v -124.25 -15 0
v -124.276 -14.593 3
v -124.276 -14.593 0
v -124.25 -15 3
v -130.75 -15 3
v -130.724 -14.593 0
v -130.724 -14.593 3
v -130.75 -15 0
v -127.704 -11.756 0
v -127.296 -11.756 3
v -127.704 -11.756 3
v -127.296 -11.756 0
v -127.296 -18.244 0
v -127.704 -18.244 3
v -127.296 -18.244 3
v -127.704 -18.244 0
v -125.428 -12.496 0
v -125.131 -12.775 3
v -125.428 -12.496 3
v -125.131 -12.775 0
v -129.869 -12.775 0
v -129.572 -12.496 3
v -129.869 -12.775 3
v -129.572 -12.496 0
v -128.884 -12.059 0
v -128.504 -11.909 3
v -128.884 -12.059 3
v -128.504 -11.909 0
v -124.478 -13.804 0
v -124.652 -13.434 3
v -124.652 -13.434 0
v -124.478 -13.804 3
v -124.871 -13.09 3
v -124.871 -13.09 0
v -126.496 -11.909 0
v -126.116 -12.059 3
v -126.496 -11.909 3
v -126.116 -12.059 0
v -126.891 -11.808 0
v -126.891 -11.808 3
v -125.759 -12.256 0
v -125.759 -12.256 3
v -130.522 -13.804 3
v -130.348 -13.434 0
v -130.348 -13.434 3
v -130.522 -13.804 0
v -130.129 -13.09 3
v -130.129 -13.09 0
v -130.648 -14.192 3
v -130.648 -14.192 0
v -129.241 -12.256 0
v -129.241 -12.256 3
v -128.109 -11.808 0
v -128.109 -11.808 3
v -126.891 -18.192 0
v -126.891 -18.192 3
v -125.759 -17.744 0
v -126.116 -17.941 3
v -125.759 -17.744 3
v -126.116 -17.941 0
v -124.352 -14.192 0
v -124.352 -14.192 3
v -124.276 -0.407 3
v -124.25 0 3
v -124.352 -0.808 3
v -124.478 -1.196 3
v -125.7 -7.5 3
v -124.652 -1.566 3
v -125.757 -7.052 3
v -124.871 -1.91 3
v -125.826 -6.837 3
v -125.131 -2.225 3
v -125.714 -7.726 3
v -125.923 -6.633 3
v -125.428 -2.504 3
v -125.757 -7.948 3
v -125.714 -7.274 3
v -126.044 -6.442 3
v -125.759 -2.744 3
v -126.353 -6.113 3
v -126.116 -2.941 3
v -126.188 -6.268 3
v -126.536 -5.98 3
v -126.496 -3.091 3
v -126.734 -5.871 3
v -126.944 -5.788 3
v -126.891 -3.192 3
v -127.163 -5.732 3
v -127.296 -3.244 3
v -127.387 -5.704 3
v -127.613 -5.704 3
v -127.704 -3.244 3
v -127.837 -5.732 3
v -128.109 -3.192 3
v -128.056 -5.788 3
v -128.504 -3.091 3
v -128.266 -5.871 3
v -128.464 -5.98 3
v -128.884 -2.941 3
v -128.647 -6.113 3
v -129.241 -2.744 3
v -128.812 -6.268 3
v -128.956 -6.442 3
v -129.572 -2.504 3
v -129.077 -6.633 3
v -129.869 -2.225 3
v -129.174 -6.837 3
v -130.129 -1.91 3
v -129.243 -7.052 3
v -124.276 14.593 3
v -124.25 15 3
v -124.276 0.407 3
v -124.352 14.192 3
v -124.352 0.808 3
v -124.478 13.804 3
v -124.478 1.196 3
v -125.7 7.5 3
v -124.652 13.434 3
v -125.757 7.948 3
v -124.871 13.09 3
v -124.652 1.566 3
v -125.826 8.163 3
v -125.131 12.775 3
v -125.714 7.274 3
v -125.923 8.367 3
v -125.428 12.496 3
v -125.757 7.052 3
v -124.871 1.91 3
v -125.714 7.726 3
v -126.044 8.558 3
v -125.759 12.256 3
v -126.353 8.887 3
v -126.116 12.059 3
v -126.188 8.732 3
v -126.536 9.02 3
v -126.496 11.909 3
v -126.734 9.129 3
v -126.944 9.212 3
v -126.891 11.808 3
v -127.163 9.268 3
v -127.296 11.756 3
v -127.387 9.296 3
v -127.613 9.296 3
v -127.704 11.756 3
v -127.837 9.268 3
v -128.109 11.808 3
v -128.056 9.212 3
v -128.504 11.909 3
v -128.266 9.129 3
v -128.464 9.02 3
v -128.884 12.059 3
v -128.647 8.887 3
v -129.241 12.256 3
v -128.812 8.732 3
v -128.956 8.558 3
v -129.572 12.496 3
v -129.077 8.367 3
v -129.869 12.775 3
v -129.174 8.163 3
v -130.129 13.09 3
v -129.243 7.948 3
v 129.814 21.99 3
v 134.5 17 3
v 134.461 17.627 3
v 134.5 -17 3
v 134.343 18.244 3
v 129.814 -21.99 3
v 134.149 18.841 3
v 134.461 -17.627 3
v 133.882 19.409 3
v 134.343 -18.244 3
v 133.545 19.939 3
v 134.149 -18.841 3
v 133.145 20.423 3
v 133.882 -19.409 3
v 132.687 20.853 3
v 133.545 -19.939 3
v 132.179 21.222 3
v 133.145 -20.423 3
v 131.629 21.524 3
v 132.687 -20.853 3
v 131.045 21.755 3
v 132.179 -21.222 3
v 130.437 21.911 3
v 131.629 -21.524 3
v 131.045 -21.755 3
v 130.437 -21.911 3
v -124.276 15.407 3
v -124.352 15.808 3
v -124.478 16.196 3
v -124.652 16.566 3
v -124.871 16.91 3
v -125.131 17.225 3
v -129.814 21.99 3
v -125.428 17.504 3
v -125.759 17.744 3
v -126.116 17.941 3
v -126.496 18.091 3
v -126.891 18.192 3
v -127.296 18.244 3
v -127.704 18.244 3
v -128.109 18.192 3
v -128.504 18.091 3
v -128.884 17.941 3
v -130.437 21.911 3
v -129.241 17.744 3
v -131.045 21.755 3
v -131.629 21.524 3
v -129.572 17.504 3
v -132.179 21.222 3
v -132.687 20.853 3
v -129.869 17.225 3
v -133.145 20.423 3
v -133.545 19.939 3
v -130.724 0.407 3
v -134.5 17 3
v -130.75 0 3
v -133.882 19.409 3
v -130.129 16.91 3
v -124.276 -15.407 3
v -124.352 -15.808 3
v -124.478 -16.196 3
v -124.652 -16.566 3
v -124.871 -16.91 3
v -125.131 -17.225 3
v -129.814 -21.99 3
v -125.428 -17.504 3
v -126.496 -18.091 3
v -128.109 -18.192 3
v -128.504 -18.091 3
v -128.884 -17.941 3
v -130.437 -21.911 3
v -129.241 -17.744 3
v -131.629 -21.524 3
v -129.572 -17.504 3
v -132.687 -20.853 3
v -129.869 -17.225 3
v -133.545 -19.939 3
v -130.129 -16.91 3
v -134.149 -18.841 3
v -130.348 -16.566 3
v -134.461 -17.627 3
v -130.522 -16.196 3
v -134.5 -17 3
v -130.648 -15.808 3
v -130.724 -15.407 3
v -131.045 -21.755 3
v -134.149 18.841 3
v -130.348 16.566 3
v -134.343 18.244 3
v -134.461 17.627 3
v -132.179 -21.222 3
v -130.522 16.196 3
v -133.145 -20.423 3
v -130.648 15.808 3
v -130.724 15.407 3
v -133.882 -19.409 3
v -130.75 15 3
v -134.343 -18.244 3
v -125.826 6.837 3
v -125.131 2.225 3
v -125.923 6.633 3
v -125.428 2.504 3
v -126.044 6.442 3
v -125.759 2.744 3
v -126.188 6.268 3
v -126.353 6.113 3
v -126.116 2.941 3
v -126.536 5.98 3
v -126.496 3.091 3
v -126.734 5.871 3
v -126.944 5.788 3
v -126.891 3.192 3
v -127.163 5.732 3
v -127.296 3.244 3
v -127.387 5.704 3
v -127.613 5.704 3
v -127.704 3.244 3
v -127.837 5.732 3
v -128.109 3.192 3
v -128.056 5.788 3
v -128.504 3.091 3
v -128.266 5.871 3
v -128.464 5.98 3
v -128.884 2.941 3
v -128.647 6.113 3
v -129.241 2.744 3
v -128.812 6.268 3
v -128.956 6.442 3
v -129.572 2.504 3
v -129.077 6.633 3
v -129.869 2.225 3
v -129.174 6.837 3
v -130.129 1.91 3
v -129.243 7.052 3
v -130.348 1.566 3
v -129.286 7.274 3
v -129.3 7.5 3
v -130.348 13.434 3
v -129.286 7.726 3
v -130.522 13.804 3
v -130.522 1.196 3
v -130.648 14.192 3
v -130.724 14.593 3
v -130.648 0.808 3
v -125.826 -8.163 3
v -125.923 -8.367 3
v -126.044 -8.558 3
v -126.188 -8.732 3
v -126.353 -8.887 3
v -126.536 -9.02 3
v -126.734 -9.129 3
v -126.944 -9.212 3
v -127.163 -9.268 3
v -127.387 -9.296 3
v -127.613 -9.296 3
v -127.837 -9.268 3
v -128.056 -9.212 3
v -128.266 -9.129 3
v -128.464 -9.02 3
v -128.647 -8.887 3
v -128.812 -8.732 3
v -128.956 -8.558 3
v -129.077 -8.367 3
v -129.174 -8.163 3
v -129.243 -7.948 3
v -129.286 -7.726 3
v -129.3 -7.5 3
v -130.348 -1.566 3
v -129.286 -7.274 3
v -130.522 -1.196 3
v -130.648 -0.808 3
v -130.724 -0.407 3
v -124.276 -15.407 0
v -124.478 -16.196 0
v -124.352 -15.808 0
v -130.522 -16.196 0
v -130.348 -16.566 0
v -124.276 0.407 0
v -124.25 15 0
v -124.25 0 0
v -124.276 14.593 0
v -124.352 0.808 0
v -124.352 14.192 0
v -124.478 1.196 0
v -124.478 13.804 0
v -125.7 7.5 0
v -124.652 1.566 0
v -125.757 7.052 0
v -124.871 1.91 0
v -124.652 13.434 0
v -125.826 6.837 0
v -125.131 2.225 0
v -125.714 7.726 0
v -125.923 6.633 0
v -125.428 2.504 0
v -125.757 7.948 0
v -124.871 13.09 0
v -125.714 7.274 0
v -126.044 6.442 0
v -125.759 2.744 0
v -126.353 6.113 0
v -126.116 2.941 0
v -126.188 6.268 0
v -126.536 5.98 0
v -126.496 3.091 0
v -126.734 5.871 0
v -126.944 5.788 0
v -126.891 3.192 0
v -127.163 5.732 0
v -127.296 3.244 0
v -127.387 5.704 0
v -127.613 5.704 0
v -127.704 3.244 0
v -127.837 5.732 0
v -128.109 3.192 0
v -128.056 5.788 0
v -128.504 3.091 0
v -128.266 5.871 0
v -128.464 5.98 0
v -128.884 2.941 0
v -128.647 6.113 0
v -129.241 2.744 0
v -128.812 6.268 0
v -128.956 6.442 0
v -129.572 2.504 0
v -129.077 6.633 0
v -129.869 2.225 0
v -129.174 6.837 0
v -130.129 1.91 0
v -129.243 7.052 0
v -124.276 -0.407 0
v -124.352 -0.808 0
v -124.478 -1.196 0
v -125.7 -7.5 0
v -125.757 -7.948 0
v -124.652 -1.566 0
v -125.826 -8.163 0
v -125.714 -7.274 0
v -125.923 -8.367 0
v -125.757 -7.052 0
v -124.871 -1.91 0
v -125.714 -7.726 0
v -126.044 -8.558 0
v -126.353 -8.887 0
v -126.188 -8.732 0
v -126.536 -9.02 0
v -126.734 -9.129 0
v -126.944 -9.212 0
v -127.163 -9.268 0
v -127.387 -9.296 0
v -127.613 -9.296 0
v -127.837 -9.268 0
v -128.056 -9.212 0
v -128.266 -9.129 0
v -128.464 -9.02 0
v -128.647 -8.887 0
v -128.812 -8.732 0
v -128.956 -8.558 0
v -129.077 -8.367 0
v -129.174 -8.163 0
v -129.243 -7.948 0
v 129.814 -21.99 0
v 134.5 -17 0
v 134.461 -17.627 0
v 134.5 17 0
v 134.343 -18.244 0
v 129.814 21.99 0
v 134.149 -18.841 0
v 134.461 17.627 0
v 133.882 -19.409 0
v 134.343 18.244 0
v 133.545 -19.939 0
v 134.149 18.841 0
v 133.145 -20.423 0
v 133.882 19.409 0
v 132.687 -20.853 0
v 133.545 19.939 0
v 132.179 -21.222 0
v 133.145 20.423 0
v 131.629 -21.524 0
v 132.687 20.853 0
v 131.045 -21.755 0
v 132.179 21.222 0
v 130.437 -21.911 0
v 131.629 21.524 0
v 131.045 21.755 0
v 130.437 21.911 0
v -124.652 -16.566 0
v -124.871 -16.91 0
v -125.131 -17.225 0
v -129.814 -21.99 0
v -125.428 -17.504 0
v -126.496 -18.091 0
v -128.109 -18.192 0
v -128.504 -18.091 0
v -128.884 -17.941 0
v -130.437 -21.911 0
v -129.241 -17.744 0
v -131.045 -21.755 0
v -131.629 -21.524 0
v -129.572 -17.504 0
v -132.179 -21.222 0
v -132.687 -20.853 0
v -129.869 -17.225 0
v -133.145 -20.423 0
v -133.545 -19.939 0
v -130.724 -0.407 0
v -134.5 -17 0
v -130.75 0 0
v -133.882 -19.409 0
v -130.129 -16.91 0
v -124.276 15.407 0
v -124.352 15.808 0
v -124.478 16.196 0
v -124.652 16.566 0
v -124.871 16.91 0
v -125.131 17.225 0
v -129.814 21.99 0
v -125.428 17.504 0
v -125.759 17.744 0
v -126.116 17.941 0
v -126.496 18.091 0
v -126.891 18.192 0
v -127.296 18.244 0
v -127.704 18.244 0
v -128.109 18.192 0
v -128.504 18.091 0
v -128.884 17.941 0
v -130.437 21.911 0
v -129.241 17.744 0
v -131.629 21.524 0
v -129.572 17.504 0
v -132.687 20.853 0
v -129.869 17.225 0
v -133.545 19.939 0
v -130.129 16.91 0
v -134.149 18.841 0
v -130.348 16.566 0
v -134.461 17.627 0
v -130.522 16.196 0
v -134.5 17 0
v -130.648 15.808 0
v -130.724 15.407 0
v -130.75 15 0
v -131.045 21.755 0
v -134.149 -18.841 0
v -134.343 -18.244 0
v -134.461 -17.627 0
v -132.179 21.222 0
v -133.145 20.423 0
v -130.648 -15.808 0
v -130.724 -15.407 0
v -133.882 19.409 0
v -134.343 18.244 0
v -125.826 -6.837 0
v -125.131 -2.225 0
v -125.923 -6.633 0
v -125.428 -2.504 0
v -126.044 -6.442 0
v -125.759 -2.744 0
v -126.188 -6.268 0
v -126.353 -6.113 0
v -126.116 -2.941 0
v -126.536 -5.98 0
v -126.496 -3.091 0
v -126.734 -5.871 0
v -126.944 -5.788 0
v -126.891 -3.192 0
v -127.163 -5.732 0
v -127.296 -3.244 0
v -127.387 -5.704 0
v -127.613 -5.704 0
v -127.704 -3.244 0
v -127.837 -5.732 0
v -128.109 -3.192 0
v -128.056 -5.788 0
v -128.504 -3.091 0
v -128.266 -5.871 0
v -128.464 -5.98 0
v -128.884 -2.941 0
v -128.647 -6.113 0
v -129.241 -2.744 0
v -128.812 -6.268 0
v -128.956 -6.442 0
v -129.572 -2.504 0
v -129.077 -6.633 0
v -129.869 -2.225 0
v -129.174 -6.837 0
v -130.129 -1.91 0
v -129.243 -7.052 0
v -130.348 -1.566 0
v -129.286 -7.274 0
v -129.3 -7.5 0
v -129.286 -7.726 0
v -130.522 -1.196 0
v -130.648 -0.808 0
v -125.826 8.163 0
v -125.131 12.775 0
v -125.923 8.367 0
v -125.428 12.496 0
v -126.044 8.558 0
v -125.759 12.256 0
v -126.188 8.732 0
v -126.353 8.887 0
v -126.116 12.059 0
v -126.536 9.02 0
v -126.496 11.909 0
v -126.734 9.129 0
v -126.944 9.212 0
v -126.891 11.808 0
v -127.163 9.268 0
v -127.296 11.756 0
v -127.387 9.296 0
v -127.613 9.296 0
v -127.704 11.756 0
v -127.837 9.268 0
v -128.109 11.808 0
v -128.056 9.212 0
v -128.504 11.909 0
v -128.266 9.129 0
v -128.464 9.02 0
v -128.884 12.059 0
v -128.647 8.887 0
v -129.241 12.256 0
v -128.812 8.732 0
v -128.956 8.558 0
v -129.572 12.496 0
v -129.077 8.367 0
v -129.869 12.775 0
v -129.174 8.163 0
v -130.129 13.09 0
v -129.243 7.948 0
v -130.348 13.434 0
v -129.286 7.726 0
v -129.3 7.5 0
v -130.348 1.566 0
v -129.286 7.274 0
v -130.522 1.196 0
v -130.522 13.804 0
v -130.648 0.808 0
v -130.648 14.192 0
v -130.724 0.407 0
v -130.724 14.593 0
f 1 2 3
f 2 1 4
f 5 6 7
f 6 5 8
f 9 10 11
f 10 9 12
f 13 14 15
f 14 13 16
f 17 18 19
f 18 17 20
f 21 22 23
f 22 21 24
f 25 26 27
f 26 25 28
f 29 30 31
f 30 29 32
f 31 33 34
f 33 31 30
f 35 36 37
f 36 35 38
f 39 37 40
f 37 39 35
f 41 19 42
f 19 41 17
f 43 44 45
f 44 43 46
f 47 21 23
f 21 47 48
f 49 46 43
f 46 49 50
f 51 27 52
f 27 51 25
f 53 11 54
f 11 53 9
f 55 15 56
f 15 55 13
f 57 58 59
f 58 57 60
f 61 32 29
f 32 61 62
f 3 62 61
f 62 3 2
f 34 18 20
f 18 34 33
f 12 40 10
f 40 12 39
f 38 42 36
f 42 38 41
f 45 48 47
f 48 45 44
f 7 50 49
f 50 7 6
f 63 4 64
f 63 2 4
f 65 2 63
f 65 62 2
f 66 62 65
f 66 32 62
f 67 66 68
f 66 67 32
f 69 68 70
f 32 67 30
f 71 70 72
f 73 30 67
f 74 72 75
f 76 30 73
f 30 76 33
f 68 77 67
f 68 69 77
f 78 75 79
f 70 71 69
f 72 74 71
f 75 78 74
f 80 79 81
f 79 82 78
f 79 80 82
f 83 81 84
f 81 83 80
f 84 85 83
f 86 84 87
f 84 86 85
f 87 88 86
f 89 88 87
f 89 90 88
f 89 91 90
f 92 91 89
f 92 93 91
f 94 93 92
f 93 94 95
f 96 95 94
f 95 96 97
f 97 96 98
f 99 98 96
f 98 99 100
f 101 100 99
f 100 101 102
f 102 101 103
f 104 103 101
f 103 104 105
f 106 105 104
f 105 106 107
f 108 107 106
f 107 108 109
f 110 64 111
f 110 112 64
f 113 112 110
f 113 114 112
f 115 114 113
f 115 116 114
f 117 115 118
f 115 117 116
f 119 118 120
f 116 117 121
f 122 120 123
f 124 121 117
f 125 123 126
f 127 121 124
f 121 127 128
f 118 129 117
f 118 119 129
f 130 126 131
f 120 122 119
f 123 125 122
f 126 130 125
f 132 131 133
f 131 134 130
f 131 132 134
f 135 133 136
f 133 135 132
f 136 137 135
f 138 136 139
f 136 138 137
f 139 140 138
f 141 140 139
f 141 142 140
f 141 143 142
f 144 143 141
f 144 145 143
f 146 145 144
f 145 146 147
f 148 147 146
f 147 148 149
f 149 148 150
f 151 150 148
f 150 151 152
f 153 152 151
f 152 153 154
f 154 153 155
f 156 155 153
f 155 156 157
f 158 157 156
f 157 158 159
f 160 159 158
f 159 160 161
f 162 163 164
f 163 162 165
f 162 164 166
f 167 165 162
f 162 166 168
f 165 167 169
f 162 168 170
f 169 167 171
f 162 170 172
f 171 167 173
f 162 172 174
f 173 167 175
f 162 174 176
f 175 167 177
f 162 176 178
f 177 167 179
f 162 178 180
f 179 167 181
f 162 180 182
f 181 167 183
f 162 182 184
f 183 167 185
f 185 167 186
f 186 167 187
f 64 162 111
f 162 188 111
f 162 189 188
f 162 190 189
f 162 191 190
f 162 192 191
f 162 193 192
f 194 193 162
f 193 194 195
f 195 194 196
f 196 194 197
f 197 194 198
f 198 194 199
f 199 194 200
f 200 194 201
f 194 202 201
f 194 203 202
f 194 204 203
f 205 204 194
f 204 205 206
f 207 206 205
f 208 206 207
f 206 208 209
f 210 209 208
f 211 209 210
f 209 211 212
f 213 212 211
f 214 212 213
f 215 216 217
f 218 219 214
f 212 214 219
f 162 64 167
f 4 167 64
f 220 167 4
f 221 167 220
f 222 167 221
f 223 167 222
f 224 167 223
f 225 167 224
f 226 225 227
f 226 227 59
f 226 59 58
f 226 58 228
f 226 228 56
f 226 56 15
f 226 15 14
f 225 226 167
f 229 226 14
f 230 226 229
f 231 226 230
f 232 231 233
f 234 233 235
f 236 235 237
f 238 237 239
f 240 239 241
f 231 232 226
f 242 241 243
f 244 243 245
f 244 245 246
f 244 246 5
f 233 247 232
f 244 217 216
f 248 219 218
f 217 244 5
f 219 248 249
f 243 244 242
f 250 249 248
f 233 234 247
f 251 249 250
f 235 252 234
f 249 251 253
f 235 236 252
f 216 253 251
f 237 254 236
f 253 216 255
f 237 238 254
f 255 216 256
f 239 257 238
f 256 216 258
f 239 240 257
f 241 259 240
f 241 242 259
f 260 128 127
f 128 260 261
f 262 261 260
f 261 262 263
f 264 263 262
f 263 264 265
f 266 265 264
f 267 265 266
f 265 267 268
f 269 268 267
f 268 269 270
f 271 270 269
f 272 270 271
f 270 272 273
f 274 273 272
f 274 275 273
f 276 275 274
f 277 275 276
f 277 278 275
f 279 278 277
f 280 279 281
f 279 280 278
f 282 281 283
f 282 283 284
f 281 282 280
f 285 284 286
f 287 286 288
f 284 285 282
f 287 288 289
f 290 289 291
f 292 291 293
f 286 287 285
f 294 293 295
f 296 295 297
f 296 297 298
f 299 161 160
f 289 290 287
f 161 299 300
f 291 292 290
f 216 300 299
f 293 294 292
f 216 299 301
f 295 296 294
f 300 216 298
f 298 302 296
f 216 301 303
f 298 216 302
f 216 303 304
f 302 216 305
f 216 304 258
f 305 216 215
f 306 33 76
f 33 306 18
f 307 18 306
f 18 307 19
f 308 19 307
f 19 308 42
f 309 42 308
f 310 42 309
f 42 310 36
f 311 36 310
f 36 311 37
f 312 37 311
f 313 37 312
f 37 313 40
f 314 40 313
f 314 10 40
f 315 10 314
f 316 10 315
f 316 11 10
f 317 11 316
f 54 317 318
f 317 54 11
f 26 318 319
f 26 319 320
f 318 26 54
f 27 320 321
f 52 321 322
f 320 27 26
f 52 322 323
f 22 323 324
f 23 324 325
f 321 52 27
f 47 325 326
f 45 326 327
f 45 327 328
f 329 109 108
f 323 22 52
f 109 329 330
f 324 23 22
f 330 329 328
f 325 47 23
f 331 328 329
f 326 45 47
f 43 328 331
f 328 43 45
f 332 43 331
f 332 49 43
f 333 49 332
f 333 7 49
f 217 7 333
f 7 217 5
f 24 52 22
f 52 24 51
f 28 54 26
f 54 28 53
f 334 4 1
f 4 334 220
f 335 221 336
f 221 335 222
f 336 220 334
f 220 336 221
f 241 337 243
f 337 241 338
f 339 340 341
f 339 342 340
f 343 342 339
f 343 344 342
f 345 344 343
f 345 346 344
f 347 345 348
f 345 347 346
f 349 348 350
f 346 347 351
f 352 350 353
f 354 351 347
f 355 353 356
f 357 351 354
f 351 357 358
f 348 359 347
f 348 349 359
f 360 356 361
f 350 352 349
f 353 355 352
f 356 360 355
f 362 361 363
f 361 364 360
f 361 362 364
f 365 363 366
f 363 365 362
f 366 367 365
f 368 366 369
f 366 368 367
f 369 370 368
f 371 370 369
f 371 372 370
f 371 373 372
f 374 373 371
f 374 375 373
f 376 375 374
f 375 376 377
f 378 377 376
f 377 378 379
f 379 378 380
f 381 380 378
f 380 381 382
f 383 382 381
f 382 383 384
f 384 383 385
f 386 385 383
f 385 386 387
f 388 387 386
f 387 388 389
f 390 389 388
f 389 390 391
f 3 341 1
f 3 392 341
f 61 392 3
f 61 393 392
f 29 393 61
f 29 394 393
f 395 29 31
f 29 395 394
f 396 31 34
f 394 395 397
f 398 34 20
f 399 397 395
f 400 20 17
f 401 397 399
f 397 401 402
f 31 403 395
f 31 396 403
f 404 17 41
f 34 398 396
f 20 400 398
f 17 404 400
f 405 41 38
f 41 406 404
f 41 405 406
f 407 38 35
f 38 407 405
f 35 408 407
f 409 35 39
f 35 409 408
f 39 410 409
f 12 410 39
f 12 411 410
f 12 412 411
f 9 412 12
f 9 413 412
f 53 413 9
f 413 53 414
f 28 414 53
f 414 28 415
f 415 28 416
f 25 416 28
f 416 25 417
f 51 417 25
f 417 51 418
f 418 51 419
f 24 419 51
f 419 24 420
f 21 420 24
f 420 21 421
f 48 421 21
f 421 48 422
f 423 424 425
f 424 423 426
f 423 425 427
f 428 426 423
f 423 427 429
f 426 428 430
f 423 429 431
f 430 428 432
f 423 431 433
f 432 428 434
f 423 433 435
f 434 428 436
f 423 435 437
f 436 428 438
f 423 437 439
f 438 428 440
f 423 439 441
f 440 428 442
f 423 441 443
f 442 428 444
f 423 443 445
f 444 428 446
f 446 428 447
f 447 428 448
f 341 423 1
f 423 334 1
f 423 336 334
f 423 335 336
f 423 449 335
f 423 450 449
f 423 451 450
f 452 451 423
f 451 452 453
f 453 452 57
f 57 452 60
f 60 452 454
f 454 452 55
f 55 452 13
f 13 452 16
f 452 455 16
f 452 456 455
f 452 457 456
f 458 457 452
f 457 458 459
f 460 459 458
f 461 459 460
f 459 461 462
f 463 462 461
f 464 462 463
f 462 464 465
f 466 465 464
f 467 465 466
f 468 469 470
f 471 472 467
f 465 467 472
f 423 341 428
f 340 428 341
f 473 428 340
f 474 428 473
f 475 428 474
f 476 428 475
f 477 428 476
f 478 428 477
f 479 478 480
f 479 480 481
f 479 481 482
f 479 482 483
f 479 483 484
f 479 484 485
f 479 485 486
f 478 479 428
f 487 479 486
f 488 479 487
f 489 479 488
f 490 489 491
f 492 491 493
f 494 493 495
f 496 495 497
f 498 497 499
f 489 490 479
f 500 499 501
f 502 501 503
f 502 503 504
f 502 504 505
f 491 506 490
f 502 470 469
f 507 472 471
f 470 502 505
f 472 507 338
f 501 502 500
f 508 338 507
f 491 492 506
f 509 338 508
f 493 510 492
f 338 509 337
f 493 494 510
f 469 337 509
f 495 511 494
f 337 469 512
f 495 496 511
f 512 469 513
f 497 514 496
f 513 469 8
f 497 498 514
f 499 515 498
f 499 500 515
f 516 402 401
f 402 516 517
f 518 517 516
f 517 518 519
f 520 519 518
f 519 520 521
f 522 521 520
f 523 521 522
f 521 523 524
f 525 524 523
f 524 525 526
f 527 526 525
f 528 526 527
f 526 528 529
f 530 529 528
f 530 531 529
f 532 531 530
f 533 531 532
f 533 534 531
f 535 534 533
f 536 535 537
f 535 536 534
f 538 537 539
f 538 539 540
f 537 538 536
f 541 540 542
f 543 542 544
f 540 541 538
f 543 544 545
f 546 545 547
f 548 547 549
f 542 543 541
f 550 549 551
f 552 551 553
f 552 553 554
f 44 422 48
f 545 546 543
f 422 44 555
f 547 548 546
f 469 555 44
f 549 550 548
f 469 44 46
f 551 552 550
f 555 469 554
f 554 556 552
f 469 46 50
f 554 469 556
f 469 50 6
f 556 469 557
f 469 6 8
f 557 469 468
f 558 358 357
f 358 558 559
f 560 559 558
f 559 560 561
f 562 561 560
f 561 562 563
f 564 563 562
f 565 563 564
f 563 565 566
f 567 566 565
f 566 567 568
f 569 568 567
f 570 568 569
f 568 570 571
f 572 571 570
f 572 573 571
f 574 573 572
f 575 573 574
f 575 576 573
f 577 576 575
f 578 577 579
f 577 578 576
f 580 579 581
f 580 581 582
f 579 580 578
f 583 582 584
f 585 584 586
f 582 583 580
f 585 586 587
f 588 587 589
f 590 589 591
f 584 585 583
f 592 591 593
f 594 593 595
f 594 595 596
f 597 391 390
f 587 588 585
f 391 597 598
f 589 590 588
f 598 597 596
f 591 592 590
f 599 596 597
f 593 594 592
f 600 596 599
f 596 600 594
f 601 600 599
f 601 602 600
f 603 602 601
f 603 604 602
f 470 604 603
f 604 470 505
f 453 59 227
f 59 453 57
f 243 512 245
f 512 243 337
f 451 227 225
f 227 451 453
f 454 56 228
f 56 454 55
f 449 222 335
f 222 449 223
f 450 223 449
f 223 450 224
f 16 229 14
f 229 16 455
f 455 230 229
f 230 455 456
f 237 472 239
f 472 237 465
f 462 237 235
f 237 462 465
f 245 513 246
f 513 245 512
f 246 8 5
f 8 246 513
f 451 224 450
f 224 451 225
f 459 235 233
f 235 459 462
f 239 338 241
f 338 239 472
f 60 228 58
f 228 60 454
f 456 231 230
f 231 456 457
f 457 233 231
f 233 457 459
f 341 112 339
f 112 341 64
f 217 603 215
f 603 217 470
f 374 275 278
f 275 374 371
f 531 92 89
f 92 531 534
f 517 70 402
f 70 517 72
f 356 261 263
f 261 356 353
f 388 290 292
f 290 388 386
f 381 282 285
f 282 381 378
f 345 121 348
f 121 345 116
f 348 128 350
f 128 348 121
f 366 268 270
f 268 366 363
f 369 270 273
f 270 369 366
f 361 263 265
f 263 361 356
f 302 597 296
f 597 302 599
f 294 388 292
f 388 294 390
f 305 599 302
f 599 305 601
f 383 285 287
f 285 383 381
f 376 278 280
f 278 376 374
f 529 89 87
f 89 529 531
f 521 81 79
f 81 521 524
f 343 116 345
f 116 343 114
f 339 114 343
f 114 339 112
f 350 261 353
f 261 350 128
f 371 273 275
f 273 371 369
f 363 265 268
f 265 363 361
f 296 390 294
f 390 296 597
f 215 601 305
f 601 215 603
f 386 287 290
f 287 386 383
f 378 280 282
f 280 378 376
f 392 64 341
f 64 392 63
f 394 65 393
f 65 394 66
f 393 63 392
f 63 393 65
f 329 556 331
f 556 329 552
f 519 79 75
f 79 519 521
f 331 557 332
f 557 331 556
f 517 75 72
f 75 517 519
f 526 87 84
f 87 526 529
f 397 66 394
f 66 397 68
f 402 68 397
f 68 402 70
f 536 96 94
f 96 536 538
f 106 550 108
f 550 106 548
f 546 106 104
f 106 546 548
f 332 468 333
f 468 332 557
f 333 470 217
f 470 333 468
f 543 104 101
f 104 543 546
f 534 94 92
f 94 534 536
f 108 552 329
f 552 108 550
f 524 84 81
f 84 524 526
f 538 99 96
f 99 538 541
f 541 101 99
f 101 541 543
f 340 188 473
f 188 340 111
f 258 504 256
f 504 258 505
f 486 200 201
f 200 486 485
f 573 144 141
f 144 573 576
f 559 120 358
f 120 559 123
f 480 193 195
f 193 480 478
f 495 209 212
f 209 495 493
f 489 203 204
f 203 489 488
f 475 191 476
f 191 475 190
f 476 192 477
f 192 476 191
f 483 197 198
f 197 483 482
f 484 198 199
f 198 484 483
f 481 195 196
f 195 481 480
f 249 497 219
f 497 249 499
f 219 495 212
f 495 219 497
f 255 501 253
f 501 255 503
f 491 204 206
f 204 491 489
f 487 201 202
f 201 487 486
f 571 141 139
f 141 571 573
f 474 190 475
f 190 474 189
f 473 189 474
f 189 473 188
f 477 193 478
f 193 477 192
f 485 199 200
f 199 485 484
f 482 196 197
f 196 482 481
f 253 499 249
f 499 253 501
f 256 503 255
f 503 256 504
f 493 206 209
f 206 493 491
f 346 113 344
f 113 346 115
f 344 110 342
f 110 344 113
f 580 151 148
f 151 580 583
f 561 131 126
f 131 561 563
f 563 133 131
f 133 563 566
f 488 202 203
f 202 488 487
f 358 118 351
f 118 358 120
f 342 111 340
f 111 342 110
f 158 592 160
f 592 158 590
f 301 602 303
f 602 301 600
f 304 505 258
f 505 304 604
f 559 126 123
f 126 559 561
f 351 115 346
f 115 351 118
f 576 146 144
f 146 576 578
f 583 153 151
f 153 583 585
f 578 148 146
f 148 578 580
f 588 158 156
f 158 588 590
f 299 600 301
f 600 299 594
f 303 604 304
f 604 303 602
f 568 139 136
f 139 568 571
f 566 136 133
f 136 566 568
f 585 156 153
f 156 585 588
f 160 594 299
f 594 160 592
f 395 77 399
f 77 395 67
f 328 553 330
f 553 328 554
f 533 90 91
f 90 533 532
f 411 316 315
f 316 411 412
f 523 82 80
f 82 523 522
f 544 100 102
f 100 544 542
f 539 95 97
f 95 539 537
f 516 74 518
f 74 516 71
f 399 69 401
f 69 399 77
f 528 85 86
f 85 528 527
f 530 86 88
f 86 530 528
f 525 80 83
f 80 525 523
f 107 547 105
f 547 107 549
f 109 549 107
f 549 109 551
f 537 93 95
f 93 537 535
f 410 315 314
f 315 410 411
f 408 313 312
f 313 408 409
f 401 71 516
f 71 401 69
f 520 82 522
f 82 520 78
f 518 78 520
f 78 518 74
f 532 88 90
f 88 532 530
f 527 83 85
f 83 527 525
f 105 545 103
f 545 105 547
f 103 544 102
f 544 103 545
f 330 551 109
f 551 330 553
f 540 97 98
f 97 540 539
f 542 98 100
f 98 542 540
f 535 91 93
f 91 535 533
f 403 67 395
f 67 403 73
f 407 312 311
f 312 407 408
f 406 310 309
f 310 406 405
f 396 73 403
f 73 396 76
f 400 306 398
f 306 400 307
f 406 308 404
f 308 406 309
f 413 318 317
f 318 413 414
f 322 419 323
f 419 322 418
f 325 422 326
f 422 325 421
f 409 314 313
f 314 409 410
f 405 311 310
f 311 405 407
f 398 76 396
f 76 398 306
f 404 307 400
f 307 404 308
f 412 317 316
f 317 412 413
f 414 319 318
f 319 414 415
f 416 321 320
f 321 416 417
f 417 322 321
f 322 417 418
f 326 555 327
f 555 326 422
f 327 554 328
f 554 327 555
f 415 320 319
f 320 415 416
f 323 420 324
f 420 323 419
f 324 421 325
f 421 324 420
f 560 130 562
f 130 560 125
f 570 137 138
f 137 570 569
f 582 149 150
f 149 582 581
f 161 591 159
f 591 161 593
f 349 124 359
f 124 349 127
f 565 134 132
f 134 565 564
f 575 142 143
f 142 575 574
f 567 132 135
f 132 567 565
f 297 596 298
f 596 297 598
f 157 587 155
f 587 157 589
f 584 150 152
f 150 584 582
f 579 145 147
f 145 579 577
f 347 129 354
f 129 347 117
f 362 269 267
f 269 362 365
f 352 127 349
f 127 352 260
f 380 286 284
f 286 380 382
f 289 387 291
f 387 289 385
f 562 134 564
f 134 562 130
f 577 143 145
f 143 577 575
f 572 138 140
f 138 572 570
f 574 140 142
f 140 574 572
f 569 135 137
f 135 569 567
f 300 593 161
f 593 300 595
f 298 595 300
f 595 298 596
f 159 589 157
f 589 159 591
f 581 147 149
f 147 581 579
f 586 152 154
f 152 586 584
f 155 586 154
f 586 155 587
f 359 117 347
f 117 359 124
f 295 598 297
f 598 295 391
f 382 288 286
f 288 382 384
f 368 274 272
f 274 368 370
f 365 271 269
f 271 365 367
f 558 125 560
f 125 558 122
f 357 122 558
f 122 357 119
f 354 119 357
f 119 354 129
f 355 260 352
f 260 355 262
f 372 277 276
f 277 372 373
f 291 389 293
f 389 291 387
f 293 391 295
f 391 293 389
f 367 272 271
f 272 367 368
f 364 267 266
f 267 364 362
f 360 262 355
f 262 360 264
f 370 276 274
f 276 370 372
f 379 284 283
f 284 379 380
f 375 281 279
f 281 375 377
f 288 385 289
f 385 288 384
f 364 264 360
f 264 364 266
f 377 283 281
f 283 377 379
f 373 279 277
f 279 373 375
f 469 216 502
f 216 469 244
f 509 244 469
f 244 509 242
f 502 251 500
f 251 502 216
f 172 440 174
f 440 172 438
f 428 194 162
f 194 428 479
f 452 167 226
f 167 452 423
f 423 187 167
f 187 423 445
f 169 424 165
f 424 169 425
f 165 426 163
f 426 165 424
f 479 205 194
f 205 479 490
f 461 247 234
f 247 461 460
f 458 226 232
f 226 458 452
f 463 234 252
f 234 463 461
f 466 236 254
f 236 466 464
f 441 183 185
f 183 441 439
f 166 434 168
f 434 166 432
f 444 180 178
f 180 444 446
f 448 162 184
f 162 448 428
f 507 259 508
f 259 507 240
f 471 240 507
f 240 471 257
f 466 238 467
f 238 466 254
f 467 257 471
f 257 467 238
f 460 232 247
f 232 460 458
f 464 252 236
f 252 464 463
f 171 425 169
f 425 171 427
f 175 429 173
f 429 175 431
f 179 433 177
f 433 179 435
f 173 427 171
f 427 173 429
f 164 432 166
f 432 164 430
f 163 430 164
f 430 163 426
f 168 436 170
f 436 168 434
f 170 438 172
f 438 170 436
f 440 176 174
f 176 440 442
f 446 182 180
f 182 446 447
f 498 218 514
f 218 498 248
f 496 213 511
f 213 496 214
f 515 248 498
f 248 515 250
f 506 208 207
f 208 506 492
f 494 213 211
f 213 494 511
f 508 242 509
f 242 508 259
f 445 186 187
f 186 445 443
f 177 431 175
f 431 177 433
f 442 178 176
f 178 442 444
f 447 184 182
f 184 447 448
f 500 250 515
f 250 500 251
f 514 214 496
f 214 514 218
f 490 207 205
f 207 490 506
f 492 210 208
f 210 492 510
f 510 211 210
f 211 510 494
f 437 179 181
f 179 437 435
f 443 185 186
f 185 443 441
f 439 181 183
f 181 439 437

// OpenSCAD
$fn = 50;


difference() {
	union() {
		hull() {
			translate(v = [-129.5000000000, 17.0000000000, 0]) {
				cylinder(h = 3, r = 5);
			}
			translate(v = [129.5000000000, 17.0000000000, 0]) {
				cylinder(h = 3, r = 5);
			}
			translate(v = [-129.5000000000, -17.0000000000, 0]) {
				cylinder(h = 3, r = 5);
			}
			translate(v = [129.5000000000, -17.0000000000, 0]) {
				cylinder(h = 3, r = 5);
			}
		}
	}
	union() {
		translate(v = [-127.5000000000, -15.0000000000, 0]) {
			cylinder(h = 3, r = 3.2500000000);
		}
		translate(v = [-127.5000000000, 0.0000000000, 0]) {
			cylinder(h = 3, r = 3.2500000000);
		}
		translate(v = [-127.5000000000, 15.0000000000, 0]) {
			cylinder(h = 3, r = 3.2500000000);
		}
		translate(v = [-127.5000000000, -15.0000000000, 0]) {
			cylinder(h = 3, r = 1.8000000000);
		}
		translate(v = [-127.5000000000, -7.5000000000, 0]) {
			cylinder(h = 3, r = 1.8000000000);
		}
		translate(v = [-127.5000000000, 0.0000000000, 0]) {
			cylinder(h = 3, r = 1.8000000000);
		}
		translate(v = [-127.5000000000, 7.5000000000, 0]) {
			cylinder(h = 3, r = 1.8000000000);
		}
		translate(v = [-127.5000000000, 15.0000000000, 0]) {
			cylinder(h = 3, r = 1.8000000000);
		}
		translate(v = [-127.5000000000, -15.0000000000, 0]) {
			cylinder(h = 3, r = 1.8000000000);
		}
		translate(v = [-127.5000000000, -7.5000000000, 0]) {
			cylinder(h = 3, r = 1.8000000000);
		}
		translate(v = [-127.5000000000, 0.0000000000, 0]) {
			cylinder(h = 3, r = 1.8000000000);
		}
		translate(v = [-127.5000000000, 7.5000000000, 0]) {
			cylinder(h = 3, r = 1.8000000000);
		}
		translate(v = [-127.5000000000, 15.0000000000, 0]) {
			cylinder(h = 3, r = 1.8000000000);
		}
		translate(v = [-127.5000000000, -15.0000000000, 0]) {
			cylinder(h = 3, r = 1.8000000000);
		}
		translate(v = [-127.5000000000, -7.5000000000, 0]) {
			cylinder(h = 3, r = 1.8000000000);
		}
		translate(v = [-127.5000000000, 0.0000000000, 0]) {
			cylinder(h = 3, r = 1.8000000000);
		}
		translate(v = [-127.5000000000, 7.5000000000, 0]) {
			cylinder(h = 3, r = 1.8000000000);
		}
		translate(v = [-127.5000000000, 15.0000000000, 0]) {
			cylinder(h = 3, r = 1.8000000000);
		}
	}
}
